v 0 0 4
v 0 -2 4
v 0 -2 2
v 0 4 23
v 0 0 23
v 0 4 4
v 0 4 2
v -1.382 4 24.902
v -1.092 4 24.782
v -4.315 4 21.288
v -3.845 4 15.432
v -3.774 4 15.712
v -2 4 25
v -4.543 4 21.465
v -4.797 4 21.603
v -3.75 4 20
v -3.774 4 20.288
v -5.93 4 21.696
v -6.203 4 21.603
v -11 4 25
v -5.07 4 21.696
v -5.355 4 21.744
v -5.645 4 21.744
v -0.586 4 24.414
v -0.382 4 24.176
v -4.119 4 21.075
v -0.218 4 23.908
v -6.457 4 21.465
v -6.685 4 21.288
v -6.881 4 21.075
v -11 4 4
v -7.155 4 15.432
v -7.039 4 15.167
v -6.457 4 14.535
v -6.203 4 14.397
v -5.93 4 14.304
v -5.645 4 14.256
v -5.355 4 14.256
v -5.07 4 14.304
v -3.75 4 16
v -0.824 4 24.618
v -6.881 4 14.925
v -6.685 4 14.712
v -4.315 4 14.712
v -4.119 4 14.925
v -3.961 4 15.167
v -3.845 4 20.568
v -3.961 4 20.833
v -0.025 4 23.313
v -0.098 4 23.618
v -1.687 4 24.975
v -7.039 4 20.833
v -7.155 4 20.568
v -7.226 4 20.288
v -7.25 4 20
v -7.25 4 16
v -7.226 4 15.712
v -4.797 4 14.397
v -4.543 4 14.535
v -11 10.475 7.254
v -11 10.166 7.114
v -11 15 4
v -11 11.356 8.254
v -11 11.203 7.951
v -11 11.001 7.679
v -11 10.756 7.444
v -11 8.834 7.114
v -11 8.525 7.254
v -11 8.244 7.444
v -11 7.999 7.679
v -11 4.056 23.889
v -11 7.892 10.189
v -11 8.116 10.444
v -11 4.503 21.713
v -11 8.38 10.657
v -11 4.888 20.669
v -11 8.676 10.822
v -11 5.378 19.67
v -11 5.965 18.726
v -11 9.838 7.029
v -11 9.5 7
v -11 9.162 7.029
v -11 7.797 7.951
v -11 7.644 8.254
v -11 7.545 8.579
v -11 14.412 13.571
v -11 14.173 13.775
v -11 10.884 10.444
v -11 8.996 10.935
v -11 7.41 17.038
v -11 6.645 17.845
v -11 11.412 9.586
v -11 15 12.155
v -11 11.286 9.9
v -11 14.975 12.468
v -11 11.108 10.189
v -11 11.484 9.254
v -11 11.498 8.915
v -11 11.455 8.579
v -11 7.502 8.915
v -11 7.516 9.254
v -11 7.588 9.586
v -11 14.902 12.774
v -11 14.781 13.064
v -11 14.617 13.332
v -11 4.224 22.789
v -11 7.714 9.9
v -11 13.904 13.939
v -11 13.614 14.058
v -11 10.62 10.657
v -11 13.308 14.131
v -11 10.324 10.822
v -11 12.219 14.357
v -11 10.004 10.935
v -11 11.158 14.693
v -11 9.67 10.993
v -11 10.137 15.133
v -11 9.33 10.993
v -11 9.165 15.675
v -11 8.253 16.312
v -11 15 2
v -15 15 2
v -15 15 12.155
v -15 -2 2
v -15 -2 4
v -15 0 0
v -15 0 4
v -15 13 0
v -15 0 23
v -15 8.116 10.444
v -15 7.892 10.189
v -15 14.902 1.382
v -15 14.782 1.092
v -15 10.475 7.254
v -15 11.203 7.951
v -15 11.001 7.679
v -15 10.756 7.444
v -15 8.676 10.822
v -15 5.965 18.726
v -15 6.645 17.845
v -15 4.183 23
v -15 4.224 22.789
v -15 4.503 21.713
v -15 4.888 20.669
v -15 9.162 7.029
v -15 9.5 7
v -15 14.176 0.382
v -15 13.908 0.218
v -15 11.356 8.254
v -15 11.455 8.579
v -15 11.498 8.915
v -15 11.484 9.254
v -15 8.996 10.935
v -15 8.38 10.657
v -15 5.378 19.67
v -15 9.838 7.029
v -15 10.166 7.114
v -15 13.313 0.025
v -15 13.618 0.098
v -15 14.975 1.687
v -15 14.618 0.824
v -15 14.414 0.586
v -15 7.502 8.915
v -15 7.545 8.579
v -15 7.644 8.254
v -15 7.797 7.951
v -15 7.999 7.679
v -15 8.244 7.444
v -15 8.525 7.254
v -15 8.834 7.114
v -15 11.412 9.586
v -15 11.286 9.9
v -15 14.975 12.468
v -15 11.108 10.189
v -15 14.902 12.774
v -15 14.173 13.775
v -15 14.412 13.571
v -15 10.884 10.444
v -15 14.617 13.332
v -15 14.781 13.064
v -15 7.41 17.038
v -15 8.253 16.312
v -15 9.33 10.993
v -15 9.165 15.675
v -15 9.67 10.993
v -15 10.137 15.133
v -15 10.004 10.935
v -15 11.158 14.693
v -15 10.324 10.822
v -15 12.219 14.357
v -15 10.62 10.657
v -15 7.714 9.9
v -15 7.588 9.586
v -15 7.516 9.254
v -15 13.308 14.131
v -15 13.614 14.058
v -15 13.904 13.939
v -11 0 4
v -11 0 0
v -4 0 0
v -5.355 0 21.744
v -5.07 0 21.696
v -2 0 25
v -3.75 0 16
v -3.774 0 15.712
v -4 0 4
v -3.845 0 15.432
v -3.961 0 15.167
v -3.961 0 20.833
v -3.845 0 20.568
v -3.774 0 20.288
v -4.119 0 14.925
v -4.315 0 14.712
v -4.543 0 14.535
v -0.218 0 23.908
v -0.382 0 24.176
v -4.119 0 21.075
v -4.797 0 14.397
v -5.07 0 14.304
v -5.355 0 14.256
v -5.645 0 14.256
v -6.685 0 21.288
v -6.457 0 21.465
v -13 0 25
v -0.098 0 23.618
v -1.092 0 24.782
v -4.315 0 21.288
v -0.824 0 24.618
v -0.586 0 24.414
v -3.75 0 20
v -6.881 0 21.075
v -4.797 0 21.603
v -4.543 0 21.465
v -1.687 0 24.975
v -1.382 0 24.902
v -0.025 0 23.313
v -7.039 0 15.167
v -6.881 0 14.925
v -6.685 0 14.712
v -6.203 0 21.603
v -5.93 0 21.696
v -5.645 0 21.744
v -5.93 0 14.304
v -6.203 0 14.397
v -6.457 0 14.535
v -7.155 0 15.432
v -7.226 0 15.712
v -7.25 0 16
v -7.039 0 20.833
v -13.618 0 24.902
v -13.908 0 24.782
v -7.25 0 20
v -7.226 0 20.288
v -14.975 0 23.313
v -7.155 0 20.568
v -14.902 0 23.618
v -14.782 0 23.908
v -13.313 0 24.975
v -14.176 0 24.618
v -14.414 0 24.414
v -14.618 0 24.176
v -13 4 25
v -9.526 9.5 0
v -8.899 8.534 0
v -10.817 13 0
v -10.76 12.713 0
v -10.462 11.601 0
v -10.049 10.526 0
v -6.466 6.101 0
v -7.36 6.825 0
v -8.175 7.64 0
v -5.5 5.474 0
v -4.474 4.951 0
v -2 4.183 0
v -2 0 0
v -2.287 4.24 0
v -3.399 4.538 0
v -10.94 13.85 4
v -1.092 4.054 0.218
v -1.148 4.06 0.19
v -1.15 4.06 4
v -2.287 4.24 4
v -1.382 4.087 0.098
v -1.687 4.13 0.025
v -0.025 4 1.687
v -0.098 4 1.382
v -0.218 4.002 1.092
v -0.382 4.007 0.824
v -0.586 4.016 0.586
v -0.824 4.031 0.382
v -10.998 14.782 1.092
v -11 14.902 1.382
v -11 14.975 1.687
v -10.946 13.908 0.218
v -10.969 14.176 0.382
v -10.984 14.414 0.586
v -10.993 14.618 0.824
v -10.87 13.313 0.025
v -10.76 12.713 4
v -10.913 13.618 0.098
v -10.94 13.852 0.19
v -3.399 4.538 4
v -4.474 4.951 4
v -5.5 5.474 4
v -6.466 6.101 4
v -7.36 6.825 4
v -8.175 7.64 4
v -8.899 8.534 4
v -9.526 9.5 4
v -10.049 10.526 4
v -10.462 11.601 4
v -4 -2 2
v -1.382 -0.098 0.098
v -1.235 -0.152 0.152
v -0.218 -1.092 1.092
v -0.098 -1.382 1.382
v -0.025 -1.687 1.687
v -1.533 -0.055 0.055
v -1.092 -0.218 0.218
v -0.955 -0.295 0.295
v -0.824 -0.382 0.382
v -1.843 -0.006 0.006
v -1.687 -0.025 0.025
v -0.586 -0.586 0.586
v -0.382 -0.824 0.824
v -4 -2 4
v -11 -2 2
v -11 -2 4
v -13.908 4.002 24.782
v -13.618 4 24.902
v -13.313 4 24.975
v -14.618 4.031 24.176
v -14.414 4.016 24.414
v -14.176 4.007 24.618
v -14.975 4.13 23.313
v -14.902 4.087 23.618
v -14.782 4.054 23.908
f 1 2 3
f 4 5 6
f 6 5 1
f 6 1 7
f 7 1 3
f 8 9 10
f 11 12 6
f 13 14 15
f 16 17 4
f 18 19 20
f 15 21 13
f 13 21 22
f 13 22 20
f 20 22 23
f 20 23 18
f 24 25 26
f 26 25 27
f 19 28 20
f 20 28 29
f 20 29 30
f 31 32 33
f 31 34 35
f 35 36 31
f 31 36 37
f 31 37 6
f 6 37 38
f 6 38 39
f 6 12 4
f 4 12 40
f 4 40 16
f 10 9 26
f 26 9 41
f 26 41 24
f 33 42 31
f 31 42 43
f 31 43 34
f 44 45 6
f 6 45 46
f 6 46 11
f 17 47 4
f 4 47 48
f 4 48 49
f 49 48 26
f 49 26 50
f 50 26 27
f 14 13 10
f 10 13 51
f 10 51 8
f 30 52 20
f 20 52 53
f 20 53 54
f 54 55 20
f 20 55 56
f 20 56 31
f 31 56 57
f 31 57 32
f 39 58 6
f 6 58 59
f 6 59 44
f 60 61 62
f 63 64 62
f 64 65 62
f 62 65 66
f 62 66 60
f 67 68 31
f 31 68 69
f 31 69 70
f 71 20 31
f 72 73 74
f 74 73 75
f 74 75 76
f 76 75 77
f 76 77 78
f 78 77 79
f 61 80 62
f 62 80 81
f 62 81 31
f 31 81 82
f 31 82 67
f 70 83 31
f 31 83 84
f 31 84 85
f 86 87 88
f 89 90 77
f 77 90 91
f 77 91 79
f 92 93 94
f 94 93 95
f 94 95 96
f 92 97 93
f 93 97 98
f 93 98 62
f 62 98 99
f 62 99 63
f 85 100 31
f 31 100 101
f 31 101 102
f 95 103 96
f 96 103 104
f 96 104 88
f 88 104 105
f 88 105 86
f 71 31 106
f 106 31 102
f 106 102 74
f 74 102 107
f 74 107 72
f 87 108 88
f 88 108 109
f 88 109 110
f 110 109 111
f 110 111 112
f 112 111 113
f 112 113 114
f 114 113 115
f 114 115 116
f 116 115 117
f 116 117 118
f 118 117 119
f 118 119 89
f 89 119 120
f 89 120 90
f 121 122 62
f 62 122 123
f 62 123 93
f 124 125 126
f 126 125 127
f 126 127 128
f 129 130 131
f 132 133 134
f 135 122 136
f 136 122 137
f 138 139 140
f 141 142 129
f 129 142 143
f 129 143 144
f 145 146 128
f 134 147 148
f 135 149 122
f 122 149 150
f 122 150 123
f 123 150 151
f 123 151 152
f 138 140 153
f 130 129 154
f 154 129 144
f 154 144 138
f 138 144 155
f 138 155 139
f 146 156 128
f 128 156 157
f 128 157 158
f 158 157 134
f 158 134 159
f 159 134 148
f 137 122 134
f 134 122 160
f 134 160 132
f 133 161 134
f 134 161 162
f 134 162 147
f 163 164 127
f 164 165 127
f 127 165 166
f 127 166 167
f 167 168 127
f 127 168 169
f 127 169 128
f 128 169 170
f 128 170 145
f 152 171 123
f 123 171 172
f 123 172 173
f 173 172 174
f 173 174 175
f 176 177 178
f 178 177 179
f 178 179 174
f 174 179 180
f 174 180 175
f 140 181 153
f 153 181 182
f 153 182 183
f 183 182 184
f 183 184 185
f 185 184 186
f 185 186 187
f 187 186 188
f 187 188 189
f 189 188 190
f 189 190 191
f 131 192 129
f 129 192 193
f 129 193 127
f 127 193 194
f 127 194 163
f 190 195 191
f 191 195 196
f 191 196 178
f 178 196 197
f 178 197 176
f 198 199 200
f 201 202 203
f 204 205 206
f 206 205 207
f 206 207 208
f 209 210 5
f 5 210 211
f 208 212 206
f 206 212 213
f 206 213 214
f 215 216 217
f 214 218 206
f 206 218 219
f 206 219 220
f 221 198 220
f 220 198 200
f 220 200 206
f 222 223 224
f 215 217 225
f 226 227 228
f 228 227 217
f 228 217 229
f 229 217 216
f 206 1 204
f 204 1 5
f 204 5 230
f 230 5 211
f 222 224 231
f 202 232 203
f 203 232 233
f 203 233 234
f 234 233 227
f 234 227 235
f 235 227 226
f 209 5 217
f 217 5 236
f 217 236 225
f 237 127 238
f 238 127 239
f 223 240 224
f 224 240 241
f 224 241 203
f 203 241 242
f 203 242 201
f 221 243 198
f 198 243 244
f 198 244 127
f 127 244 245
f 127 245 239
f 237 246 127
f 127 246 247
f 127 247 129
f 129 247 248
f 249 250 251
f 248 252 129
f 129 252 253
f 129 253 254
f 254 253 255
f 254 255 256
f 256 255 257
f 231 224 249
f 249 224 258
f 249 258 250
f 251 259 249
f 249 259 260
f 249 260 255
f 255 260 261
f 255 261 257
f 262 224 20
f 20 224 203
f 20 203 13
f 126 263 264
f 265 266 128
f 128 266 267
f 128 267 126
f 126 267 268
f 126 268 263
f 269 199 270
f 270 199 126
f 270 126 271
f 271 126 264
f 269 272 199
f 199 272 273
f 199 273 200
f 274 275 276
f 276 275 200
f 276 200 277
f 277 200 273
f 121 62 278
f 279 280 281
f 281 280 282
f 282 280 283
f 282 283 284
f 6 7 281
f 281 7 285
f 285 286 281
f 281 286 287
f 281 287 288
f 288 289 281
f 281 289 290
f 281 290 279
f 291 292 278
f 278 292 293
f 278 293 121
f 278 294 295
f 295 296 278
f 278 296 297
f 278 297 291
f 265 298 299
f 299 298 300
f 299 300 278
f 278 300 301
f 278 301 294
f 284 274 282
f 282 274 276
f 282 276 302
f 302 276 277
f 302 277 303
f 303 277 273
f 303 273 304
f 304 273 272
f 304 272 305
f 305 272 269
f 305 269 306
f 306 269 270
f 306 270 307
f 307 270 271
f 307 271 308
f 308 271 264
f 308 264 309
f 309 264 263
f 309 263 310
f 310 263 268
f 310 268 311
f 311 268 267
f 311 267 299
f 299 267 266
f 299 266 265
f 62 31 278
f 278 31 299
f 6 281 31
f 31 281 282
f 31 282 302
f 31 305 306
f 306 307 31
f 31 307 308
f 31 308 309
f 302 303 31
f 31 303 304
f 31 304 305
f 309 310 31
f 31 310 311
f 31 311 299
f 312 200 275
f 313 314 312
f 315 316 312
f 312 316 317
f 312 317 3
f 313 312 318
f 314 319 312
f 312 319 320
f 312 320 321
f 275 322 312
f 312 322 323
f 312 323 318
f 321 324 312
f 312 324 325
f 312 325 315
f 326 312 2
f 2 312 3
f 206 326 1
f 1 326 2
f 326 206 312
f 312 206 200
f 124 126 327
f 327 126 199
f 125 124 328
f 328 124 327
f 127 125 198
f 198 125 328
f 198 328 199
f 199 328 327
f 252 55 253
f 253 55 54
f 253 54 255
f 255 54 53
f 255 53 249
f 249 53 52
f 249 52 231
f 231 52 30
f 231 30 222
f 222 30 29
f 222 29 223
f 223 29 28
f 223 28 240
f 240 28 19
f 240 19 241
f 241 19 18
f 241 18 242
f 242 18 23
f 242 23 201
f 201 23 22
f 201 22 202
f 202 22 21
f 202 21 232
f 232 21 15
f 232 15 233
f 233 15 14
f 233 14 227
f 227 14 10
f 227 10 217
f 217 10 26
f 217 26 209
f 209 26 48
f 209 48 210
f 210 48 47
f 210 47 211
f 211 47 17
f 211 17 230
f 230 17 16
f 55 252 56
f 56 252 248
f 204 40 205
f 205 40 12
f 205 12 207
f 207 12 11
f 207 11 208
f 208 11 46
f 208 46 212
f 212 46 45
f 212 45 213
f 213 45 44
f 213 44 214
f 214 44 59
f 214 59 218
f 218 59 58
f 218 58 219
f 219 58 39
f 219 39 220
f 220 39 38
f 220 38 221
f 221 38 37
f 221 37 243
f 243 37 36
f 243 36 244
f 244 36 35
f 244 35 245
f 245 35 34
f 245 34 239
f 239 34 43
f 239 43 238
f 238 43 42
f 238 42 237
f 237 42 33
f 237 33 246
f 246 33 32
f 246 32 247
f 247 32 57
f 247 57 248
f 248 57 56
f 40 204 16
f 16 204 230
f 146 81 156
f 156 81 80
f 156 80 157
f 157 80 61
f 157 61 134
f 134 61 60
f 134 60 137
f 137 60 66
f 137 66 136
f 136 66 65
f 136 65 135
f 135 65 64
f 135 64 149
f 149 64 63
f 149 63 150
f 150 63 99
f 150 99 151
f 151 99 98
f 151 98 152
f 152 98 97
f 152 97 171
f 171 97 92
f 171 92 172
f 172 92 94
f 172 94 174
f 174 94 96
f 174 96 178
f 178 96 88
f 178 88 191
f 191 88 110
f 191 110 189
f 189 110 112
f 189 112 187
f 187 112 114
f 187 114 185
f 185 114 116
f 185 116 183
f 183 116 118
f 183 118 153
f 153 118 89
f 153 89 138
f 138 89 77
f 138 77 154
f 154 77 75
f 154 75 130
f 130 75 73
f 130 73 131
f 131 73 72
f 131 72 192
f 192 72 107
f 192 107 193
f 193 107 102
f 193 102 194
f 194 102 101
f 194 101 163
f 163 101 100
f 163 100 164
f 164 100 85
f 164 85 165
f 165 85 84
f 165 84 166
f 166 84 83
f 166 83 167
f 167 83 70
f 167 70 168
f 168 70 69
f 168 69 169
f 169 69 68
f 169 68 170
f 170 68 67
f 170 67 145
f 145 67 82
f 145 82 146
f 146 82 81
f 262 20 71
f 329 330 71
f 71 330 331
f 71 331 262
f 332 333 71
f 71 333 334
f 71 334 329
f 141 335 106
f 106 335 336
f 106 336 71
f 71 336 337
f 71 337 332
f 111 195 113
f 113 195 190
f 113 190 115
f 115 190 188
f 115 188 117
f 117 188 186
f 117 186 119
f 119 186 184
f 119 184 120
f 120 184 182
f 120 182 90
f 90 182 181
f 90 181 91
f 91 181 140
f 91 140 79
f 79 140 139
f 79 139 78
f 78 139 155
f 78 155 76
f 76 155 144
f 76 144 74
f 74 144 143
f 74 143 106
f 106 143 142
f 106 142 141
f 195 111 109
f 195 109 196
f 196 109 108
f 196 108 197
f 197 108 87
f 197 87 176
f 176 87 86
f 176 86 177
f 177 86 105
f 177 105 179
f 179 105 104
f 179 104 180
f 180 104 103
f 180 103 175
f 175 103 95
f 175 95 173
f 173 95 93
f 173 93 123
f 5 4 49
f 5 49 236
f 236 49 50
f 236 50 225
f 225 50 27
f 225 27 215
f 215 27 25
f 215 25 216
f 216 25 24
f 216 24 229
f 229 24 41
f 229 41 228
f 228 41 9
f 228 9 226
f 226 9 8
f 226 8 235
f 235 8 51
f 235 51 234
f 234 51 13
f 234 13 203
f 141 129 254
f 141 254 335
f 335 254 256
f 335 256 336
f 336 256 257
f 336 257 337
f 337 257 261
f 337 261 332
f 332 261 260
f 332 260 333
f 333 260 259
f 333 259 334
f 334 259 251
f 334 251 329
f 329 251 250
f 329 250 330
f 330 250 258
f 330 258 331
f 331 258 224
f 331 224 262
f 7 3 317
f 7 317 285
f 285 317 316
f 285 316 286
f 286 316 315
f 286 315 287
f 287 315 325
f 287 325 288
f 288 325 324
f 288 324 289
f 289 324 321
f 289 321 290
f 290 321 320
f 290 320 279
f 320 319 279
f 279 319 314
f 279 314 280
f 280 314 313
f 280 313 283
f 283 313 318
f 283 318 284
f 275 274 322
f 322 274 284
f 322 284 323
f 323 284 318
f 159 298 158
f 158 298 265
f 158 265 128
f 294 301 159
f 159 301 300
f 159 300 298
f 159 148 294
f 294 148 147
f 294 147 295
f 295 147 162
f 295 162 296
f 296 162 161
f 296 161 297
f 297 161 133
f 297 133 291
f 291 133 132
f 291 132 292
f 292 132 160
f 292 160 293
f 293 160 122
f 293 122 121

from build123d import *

# Parameters (mm, degrees)
RESSALTO_EXTRUS_O1_DEPTH = 25
RESSALTO_EXTRUS_O2_DEPTH = 4
RESSALTO_EXTRUS_O4_DEPTH = 4
PADR_O_LINEAR1_COUNT     = 2
PADR_O_LINEAR1_PITCH     = 11
CORTE_EXTRUS_O1_DEPTH    = 7
ESBO_O6_R                = 2
CORTE_EXTRUS_O2_DEPTH    = 5
CORTE_EXTRUS_O3_DEPTH    = 5
FILETE2_R                = 2
FILETE3_R                = 2
FILETE4_R                = 2
FILETE5_R                = 2
FILETE6_R                = 2


with BuildPart() as part:
    # Esboço1 → Ressalto-extrusão1 (new body)
    with BuildSketch(Plane.XY):
        Polygon((0, 0), (-15, 0), (-15, 15), (-11, 15), (-11, 4), (0, 4), align=None)
    extrude(amount=RESSALTO_EXTRUS_O1_DEPTH)

    # Esboço2 → Ressalto-extrusão2 (add)
    with BuildSketch(Plane(origin=(0, 0, 0), x_dir=(-1, 0, 0), z_dir=(0, 0, -1))):
        with BuildLine():
            Line((0, 4), (11, 4))
            Line((11, 4), (11, 15))
            ThreePointArc((11, 15), (7.778174593, 7.221825407), (0, 4))
        make_face()
    extrude(amount=-RESSALTO_EXTRUS_O2_DEPTH)

    # Esboço3 → Ressalto-extrusão4 (add)
    with BuildSketch(Plane(origin=(0, 0, 0), x_dir=(0, 0, -1), z_dir=(1, 0, 0))):
        Polygon((0, 0), (-4, 0), (-4, -2), (-2, -2), align=None)
    ressalto_extrus_o4 = extrude(amount=-RESSALTO_EXTRUS_O4_DEPTH)

    # Padrão linear1: Ressalto-extrusão4 ×2
    with Locations(*[(-i * PADR_O_LINEAR1_PITCH, 0, 0) for i in range(1, PADR_O_LINEAR1_COUNT)]):
        add(ressalto_extrus_o4)

    # Esboço5 → Corte-extrusão1 (cut, through all)
    with BuildSketch(Plane(origin=(0, 4, 0), x_dir=(1, 0, 0), z_dir=(0, 1, 0))):
        with BuildLine():
            Line((-7.25, -20), (-7.25, -16))
            ThreePointArc((-7.25, -16), (-5.5, -14.25), (-3.75, -16))
            Line((-3.75, -16), (-3.75, -20))
            ThreePointArc((-3.75, -20), (-5.5, -21.75), (-7.25, -20))
        make_face()
    extrude(amount=-CORTE_EXTRUS_O1_DEPTH, mode=Mode.SUBTRACT)

    # Esboço6 → Corte-extrusão2 (cut, through all)
    with BuildSketch(Plane(origin=(-11, 0, 0), x_dir=(0, 0, -1), z_dir=(1, 0, 0))):
        with Locations((-9, 9.5)):
            Circle(ESBO_O6_R)
    extrude(amount=-CORTE_EXTRUS_O2_DEPTH, mode=Mode.SUBTRACT)

    # Esboço8 → Corte-extrusão3 (cut, through all)
    with BuildSketch(Plane(origin=(-11, 0, 0), x_dir=(0, 0, -1), z_dir=(1, 0, 0))):
        with BuildLine():
            Line((-25, 4), (-25, 15))
            Line((-25, 15), (-14, 15))
            ThreePointArc((-14, 15), (-17.221825407, 7.221825407), (-25, 4))
        make_face()
    extrude(amount=-CORTE_EXTRUS_O3_DEPTH, mode=Mode.SUBTRACT)

    # Filete2
    filete2_edges = [part.edges().sort_by_distance(p)[0] for p in [
        (-13, 15, 14),
    ]]
    fillet(filete2_edges, radius=FILETE2_R)

    # Filete3
    filete3_edges = [part.edges().sort_by_distance(p)[0] for p in [
        (0, 2, 25),
    ]]
    fillet(filete3_edges, radius=FILETE3_R)

    # Filete4
    filete4_edges = [part.edges().sort_by_distance(p)[0] for p in [
        (-15, 2, 25),
    ]]
    fillet(filete4_edges, radius=FILETE4_R)

    # Filete5
    filete5_edges = [part.edges().sort_by_distance(p)[0] for p in [
        (0, 2, 0),
    ]]
    fillet(filete5_edges, radius=FILETE5_R)

    # Filete6
    filete6_edges = [part.edges().sort_by_distance(p)[0] for p in [
        (-13, 15, 0),
    ]]
    fillet(filete6_edges, radius=FILETE6_R)


solid = part.part
